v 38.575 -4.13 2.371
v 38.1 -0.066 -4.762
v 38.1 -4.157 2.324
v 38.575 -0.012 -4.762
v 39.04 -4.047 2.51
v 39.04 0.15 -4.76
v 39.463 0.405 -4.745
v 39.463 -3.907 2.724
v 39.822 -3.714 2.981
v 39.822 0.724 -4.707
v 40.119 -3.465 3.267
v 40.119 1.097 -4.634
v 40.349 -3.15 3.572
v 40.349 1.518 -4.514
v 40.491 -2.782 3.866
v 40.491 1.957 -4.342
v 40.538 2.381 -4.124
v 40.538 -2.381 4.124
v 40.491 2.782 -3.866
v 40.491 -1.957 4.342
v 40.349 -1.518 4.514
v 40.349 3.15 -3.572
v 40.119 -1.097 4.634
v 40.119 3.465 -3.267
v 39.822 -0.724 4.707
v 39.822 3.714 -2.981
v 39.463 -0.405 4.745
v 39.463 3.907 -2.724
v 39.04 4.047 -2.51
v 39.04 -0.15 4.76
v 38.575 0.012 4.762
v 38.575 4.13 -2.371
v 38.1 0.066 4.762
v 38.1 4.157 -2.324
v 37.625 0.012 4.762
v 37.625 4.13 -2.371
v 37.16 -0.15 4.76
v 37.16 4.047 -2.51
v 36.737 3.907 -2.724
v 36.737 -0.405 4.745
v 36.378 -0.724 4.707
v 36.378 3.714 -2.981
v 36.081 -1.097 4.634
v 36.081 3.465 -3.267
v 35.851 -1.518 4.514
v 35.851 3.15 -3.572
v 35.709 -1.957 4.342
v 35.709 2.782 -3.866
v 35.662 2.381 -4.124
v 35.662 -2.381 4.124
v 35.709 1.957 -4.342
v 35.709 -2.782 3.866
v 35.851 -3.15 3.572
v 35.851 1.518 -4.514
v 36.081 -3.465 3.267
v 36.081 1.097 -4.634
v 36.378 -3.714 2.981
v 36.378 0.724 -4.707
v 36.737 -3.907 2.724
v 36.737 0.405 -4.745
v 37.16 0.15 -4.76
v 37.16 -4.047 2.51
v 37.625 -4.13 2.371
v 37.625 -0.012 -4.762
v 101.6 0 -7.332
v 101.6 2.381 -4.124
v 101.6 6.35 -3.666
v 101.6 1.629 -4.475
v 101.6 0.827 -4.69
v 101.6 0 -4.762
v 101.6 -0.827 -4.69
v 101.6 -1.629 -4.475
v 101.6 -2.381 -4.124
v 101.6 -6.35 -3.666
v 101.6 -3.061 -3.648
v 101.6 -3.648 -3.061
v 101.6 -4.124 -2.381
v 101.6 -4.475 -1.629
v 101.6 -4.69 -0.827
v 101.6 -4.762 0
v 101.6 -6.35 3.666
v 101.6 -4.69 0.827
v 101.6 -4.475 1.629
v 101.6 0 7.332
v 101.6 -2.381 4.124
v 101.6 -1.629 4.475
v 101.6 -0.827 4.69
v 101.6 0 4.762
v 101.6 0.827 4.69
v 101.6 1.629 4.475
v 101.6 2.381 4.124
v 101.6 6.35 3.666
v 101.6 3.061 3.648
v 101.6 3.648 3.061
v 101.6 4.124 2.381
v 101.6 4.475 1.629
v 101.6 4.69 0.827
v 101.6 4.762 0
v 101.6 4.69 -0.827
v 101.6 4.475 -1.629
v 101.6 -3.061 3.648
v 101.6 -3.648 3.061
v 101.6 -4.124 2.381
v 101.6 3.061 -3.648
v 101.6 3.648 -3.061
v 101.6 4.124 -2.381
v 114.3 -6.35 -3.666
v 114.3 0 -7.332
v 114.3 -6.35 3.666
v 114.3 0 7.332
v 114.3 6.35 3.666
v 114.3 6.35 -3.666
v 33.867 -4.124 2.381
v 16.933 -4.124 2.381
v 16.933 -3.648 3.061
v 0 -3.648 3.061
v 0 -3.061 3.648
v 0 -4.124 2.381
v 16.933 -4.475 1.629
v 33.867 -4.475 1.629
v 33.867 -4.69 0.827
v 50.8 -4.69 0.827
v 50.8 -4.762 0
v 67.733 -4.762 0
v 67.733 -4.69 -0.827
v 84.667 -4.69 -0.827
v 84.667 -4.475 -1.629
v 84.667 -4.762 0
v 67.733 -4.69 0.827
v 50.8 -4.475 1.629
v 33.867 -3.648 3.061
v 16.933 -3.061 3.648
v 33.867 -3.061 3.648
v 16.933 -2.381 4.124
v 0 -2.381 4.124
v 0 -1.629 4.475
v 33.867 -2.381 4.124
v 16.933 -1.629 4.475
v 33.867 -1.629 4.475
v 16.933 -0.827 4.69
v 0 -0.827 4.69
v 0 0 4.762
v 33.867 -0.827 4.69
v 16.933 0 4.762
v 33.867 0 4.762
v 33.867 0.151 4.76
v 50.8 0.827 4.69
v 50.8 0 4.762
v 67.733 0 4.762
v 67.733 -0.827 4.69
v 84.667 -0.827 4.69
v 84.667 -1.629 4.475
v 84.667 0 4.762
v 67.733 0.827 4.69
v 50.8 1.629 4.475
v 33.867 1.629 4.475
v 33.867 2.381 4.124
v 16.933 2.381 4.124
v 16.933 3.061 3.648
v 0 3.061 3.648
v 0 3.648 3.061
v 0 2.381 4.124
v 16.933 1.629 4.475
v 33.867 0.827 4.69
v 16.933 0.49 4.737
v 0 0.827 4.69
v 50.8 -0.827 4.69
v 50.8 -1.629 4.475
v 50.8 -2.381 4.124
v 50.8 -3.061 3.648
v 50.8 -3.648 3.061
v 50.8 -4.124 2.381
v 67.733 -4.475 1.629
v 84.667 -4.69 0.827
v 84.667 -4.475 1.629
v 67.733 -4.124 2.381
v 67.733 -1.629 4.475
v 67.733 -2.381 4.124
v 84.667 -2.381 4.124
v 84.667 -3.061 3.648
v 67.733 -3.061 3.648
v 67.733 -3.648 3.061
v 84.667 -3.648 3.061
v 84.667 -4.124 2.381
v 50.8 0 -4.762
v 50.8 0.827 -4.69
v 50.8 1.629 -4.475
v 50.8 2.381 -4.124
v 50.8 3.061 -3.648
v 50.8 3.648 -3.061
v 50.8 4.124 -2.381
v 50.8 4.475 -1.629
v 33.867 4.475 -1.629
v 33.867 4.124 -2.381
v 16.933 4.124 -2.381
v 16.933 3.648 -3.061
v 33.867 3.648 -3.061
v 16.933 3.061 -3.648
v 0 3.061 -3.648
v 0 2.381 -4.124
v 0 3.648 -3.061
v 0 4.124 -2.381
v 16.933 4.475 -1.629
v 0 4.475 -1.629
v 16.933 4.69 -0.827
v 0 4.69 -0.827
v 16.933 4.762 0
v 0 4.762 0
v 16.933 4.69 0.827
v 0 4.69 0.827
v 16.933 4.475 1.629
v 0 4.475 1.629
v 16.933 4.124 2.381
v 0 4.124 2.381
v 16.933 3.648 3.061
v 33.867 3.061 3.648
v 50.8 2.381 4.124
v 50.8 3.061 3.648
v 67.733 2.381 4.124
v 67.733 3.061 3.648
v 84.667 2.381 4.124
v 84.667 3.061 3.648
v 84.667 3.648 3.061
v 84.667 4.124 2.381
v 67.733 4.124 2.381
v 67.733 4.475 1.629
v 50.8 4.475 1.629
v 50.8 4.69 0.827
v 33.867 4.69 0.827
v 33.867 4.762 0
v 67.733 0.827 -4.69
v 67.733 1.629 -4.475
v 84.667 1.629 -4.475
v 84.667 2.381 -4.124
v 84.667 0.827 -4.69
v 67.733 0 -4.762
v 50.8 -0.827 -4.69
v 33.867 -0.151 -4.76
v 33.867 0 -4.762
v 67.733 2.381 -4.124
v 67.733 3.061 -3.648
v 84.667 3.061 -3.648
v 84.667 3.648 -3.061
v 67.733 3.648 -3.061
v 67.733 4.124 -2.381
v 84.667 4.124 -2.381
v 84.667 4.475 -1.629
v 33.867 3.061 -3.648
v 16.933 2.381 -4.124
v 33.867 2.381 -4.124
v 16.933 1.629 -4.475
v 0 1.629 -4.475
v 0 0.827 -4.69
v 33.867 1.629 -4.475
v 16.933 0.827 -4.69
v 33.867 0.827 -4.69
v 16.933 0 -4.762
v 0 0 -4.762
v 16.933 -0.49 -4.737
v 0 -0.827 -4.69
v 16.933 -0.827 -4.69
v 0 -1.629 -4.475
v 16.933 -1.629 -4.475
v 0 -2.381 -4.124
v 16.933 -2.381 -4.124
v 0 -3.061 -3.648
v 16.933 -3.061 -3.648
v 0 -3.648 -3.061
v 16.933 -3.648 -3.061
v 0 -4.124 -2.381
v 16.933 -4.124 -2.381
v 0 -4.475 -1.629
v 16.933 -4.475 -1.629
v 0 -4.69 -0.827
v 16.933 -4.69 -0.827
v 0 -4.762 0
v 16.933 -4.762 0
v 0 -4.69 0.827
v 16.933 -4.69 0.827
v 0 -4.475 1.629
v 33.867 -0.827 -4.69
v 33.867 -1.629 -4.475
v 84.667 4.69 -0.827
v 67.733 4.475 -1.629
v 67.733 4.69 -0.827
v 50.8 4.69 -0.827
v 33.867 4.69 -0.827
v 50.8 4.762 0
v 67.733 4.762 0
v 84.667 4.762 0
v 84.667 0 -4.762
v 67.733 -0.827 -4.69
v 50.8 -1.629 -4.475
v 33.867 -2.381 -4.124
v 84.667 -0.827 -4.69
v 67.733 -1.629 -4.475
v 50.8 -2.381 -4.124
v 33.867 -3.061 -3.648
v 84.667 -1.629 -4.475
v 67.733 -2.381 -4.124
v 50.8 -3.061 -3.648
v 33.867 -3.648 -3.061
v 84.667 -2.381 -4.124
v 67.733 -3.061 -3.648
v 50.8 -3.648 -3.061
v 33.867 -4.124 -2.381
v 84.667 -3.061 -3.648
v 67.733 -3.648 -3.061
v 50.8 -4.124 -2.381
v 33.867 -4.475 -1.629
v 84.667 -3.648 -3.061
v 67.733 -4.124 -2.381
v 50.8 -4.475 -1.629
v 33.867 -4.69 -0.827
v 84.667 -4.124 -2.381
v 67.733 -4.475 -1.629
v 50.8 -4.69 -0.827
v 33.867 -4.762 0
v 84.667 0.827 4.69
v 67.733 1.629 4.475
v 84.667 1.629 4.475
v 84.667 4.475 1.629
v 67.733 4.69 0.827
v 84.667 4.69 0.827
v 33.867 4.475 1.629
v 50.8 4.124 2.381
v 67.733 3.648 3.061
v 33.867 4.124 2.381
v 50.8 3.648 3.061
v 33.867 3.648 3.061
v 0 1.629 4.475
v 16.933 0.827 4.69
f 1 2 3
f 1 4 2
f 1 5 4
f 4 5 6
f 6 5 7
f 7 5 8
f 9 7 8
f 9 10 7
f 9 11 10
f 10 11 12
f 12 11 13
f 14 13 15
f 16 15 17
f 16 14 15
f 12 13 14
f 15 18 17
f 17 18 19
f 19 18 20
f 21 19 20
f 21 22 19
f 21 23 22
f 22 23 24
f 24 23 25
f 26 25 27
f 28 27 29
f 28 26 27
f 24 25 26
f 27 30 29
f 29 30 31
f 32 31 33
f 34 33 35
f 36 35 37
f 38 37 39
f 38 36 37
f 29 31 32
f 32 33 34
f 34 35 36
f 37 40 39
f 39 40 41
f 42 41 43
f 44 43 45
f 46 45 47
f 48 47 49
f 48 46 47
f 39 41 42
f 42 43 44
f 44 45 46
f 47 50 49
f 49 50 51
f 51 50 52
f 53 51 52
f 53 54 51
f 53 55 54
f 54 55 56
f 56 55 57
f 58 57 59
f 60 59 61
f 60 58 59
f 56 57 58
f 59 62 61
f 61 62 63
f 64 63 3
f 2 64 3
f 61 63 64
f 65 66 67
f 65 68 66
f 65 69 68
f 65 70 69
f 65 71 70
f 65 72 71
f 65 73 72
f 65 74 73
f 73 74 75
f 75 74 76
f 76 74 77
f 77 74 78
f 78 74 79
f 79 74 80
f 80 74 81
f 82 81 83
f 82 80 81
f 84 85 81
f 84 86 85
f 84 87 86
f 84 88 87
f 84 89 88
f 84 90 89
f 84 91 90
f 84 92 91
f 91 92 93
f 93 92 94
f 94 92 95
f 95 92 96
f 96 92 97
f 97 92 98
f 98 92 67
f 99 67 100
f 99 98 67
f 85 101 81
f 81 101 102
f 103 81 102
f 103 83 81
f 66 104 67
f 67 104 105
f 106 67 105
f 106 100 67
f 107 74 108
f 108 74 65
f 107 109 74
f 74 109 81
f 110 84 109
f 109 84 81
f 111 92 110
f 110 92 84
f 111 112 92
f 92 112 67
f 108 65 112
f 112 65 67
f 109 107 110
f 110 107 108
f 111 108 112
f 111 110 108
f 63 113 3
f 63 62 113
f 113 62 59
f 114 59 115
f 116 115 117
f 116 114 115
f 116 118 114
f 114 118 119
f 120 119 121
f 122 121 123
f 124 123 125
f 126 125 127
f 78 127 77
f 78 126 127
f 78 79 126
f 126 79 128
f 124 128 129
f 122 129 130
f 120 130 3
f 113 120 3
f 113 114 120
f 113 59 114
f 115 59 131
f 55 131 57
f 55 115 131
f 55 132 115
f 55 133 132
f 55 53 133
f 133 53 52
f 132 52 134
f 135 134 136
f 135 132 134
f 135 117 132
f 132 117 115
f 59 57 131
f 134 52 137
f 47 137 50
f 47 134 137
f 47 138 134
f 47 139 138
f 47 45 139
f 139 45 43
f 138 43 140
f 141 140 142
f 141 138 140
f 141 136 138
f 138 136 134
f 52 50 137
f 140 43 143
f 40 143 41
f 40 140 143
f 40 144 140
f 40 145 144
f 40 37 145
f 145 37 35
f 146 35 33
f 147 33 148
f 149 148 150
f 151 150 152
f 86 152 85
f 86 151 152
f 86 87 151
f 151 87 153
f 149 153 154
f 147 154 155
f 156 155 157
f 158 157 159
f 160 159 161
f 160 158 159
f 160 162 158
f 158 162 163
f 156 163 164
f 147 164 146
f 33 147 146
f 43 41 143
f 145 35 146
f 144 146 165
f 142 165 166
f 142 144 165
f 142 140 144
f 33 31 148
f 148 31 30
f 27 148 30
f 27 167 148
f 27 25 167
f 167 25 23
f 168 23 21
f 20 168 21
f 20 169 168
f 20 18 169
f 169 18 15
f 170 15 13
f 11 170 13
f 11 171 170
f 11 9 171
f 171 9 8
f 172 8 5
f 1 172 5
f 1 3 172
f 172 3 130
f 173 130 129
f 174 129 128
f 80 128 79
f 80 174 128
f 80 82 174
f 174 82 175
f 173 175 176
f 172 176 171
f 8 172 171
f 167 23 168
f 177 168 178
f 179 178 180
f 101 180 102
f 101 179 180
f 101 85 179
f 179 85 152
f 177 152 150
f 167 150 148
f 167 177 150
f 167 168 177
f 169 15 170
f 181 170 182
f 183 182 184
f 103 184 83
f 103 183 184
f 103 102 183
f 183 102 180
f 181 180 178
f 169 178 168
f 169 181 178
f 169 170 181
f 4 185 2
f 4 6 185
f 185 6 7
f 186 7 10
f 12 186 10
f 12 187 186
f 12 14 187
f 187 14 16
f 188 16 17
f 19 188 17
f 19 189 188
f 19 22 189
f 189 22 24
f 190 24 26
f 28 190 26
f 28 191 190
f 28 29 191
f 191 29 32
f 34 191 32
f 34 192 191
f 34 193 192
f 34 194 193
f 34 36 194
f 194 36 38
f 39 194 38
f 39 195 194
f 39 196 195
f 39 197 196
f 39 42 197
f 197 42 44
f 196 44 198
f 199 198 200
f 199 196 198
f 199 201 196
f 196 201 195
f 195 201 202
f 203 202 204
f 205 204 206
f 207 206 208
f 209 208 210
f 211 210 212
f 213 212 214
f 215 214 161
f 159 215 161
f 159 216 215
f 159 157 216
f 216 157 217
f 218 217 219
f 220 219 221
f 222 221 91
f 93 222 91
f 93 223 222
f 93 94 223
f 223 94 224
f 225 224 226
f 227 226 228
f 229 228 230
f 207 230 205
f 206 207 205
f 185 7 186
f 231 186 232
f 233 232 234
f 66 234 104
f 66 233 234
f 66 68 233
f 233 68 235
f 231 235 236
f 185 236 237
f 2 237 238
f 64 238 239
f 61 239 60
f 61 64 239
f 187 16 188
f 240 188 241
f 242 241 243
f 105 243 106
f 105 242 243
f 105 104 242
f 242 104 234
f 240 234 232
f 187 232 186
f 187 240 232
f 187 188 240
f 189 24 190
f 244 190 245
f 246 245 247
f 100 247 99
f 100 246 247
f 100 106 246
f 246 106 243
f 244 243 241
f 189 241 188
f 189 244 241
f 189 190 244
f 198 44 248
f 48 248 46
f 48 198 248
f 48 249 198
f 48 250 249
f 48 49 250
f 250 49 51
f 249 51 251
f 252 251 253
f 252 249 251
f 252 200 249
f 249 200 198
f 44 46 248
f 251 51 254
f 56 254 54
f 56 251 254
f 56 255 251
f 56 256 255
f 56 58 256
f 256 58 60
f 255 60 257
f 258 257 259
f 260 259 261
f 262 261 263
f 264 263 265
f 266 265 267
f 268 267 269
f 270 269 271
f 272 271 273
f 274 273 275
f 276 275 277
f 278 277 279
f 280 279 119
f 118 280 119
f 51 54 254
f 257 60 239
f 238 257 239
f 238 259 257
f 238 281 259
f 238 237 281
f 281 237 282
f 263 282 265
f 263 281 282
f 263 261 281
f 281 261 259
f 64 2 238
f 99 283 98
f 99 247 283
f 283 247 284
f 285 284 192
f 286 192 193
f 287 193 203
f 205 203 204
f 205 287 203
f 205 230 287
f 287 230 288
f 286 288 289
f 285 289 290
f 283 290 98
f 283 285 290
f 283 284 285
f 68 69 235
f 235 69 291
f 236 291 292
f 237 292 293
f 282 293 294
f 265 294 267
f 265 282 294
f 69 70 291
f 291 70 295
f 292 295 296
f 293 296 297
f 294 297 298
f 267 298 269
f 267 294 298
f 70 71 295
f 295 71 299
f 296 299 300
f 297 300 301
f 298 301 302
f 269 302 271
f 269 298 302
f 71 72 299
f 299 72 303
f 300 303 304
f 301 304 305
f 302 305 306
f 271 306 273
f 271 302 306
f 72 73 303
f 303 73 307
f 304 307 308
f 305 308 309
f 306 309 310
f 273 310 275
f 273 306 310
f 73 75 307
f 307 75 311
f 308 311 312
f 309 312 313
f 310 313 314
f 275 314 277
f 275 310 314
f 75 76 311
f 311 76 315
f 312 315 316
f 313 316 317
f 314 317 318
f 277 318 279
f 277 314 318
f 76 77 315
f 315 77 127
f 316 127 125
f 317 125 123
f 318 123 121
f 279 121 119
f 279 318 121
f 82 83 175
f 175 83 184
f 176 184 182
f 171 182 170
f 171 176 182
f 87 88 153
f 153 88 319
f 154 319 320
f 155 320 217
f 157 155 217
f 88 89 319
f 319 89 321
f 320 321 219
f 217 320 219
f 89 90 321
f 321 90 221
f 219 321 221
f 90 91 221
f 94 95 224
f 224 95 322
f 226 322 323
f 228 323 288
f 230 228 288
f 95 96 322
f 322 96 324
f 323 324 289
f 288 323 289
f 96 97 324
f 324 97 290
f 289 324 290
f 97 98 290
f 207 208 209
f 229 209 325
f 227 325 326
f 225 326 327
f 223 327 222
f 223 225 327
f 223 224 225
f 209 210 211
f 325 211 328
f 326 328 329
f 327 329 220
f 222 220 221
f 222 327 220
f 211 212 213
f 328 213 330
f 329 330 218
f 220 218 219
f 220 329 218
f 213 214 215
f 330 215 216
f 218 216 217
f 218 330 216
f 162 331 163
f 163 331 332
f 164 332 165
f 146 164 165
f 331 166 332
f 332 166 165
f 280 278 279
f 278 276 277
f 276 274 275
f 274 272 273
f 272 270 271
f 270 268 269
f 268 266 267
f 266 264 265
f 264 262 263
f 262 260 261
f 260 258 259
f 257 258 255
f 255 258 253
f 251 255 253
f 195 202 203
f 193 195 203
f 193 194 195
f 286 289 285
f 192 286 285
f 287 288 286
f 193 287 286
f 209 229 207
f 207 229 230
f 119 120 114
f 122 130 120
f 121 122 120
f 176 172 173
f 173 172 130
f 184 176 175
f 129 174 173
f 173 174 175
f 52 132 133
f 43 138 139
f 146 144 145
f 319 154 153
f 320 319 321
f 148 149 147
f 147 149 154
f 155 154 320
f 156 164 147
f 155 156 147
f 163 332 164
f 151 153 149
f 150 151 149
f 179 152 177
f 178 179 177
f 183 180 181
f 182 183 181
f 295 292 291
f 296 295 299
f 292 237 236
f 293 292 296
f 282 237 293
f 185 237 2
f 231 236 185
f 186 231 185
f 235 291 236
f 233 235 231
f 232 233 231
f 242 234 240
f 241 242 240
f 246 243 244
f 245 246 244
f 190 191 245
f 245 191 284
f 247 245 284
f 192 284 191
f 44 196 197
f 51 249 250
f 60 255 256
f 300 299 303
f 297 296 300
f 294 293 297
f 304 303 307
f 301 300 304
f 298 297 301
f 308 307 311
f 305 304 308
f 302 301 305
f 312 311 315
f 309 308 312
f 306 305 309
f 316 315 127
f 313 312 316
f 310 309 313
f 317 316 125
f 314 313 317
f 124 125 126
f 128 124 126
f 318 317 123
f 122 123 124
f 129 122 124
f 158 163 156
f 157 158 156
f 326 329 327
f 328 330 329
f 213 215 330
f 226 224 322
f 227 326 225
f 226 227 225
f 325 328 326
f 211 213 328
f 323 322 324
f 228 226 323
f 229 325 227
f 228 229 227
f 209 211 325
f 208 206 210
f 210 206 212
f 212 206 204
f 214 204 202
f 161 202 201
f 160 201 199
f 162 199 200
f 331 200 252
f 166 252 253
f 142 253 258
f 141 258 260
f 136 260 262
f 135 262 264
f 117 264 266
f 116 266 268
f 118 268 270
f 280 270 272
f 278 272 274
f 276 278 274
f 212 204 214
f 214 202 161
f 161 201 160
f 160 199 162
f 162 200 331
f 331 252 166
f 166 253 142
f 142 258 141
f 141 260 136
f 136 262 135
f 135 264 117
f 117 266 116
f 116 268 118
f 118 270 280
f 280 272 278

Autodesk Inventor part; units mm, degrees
ref_plane "YZ Plane" through (0, 0, 0) normal (1, 0, 0) x (0, 1, 0)
ref_plane "XZ Plane" through (0, 0, 0) normal (0, 1, 0) x (-1, 0, 0)
ref_plane "XY Plane" through (0, 0, 0) normal (0, 0, 1) x (1, 0, 0)
sketch "Sketch1" plane through (0, 0, 0) normal (1, 0, 0) x (0, 1, 0)
  circle A0 centre (0, 0) radius 4.7625
  dimension "d0" = 9.525
extrude "Extrusion1" add sketch "Sketch1" along normal blind 101.6
sketch "Sketch2" plane through (101.6, 0, 0) normal (1, 0, 0) x (0, 0, -1)
  circle A0 centre (0, 0) radius 4.7625 projected
  line L0 (3.6662, 6.35) -> (7.3323, 0)
  line L1 (7.3323, 0) -> (3.6662, -6.35)
  line L2 (3.6662, -6.35) -> (-3.6662, -6.35)
  line L3 (-3.6662, -6.35) -> (-7.3323, 0)
  line L4 (-7.3323, 0) -> (-3.6662, 6.35)
  line L5 (-3.6662, 6.35) -> (3.6662, 6.35)
  dimension "d3" = 12.7
extrude "Extrusion2" add sketch "Sketch2" along normal blind 12.7 contours A0 | L0 L1 L2 L3 L4 L5
sketch "Sketch3" plane through (114.3, 0, -7.3323) normal (0, 0.5, -0.866) x (-1, 0, 0)
  circle A0 centre (76.2, 3.6662) radius 2.4384
  line L0 (12.7, 7.3323) -> (76.2, 7.3323) construction
  line L1 (76.2, 7.3323) -> (76.2, 3.6662) construction
  line L2 (76.2, 3.6662) -> (76.2, 0) construction
  line L3 (76.2, 0) -> (12.7, 0) construction
  point P0 (114.3, 3.6662)
  dimension "d6" = 4.8768
  dimension "d9" = 63.5
extrude "Extrusion3" cut sketch "Sketch3" against normal through all
properties part number "Shovel_RollerDriveAxle" material "Aluminum-6061-AHC"
